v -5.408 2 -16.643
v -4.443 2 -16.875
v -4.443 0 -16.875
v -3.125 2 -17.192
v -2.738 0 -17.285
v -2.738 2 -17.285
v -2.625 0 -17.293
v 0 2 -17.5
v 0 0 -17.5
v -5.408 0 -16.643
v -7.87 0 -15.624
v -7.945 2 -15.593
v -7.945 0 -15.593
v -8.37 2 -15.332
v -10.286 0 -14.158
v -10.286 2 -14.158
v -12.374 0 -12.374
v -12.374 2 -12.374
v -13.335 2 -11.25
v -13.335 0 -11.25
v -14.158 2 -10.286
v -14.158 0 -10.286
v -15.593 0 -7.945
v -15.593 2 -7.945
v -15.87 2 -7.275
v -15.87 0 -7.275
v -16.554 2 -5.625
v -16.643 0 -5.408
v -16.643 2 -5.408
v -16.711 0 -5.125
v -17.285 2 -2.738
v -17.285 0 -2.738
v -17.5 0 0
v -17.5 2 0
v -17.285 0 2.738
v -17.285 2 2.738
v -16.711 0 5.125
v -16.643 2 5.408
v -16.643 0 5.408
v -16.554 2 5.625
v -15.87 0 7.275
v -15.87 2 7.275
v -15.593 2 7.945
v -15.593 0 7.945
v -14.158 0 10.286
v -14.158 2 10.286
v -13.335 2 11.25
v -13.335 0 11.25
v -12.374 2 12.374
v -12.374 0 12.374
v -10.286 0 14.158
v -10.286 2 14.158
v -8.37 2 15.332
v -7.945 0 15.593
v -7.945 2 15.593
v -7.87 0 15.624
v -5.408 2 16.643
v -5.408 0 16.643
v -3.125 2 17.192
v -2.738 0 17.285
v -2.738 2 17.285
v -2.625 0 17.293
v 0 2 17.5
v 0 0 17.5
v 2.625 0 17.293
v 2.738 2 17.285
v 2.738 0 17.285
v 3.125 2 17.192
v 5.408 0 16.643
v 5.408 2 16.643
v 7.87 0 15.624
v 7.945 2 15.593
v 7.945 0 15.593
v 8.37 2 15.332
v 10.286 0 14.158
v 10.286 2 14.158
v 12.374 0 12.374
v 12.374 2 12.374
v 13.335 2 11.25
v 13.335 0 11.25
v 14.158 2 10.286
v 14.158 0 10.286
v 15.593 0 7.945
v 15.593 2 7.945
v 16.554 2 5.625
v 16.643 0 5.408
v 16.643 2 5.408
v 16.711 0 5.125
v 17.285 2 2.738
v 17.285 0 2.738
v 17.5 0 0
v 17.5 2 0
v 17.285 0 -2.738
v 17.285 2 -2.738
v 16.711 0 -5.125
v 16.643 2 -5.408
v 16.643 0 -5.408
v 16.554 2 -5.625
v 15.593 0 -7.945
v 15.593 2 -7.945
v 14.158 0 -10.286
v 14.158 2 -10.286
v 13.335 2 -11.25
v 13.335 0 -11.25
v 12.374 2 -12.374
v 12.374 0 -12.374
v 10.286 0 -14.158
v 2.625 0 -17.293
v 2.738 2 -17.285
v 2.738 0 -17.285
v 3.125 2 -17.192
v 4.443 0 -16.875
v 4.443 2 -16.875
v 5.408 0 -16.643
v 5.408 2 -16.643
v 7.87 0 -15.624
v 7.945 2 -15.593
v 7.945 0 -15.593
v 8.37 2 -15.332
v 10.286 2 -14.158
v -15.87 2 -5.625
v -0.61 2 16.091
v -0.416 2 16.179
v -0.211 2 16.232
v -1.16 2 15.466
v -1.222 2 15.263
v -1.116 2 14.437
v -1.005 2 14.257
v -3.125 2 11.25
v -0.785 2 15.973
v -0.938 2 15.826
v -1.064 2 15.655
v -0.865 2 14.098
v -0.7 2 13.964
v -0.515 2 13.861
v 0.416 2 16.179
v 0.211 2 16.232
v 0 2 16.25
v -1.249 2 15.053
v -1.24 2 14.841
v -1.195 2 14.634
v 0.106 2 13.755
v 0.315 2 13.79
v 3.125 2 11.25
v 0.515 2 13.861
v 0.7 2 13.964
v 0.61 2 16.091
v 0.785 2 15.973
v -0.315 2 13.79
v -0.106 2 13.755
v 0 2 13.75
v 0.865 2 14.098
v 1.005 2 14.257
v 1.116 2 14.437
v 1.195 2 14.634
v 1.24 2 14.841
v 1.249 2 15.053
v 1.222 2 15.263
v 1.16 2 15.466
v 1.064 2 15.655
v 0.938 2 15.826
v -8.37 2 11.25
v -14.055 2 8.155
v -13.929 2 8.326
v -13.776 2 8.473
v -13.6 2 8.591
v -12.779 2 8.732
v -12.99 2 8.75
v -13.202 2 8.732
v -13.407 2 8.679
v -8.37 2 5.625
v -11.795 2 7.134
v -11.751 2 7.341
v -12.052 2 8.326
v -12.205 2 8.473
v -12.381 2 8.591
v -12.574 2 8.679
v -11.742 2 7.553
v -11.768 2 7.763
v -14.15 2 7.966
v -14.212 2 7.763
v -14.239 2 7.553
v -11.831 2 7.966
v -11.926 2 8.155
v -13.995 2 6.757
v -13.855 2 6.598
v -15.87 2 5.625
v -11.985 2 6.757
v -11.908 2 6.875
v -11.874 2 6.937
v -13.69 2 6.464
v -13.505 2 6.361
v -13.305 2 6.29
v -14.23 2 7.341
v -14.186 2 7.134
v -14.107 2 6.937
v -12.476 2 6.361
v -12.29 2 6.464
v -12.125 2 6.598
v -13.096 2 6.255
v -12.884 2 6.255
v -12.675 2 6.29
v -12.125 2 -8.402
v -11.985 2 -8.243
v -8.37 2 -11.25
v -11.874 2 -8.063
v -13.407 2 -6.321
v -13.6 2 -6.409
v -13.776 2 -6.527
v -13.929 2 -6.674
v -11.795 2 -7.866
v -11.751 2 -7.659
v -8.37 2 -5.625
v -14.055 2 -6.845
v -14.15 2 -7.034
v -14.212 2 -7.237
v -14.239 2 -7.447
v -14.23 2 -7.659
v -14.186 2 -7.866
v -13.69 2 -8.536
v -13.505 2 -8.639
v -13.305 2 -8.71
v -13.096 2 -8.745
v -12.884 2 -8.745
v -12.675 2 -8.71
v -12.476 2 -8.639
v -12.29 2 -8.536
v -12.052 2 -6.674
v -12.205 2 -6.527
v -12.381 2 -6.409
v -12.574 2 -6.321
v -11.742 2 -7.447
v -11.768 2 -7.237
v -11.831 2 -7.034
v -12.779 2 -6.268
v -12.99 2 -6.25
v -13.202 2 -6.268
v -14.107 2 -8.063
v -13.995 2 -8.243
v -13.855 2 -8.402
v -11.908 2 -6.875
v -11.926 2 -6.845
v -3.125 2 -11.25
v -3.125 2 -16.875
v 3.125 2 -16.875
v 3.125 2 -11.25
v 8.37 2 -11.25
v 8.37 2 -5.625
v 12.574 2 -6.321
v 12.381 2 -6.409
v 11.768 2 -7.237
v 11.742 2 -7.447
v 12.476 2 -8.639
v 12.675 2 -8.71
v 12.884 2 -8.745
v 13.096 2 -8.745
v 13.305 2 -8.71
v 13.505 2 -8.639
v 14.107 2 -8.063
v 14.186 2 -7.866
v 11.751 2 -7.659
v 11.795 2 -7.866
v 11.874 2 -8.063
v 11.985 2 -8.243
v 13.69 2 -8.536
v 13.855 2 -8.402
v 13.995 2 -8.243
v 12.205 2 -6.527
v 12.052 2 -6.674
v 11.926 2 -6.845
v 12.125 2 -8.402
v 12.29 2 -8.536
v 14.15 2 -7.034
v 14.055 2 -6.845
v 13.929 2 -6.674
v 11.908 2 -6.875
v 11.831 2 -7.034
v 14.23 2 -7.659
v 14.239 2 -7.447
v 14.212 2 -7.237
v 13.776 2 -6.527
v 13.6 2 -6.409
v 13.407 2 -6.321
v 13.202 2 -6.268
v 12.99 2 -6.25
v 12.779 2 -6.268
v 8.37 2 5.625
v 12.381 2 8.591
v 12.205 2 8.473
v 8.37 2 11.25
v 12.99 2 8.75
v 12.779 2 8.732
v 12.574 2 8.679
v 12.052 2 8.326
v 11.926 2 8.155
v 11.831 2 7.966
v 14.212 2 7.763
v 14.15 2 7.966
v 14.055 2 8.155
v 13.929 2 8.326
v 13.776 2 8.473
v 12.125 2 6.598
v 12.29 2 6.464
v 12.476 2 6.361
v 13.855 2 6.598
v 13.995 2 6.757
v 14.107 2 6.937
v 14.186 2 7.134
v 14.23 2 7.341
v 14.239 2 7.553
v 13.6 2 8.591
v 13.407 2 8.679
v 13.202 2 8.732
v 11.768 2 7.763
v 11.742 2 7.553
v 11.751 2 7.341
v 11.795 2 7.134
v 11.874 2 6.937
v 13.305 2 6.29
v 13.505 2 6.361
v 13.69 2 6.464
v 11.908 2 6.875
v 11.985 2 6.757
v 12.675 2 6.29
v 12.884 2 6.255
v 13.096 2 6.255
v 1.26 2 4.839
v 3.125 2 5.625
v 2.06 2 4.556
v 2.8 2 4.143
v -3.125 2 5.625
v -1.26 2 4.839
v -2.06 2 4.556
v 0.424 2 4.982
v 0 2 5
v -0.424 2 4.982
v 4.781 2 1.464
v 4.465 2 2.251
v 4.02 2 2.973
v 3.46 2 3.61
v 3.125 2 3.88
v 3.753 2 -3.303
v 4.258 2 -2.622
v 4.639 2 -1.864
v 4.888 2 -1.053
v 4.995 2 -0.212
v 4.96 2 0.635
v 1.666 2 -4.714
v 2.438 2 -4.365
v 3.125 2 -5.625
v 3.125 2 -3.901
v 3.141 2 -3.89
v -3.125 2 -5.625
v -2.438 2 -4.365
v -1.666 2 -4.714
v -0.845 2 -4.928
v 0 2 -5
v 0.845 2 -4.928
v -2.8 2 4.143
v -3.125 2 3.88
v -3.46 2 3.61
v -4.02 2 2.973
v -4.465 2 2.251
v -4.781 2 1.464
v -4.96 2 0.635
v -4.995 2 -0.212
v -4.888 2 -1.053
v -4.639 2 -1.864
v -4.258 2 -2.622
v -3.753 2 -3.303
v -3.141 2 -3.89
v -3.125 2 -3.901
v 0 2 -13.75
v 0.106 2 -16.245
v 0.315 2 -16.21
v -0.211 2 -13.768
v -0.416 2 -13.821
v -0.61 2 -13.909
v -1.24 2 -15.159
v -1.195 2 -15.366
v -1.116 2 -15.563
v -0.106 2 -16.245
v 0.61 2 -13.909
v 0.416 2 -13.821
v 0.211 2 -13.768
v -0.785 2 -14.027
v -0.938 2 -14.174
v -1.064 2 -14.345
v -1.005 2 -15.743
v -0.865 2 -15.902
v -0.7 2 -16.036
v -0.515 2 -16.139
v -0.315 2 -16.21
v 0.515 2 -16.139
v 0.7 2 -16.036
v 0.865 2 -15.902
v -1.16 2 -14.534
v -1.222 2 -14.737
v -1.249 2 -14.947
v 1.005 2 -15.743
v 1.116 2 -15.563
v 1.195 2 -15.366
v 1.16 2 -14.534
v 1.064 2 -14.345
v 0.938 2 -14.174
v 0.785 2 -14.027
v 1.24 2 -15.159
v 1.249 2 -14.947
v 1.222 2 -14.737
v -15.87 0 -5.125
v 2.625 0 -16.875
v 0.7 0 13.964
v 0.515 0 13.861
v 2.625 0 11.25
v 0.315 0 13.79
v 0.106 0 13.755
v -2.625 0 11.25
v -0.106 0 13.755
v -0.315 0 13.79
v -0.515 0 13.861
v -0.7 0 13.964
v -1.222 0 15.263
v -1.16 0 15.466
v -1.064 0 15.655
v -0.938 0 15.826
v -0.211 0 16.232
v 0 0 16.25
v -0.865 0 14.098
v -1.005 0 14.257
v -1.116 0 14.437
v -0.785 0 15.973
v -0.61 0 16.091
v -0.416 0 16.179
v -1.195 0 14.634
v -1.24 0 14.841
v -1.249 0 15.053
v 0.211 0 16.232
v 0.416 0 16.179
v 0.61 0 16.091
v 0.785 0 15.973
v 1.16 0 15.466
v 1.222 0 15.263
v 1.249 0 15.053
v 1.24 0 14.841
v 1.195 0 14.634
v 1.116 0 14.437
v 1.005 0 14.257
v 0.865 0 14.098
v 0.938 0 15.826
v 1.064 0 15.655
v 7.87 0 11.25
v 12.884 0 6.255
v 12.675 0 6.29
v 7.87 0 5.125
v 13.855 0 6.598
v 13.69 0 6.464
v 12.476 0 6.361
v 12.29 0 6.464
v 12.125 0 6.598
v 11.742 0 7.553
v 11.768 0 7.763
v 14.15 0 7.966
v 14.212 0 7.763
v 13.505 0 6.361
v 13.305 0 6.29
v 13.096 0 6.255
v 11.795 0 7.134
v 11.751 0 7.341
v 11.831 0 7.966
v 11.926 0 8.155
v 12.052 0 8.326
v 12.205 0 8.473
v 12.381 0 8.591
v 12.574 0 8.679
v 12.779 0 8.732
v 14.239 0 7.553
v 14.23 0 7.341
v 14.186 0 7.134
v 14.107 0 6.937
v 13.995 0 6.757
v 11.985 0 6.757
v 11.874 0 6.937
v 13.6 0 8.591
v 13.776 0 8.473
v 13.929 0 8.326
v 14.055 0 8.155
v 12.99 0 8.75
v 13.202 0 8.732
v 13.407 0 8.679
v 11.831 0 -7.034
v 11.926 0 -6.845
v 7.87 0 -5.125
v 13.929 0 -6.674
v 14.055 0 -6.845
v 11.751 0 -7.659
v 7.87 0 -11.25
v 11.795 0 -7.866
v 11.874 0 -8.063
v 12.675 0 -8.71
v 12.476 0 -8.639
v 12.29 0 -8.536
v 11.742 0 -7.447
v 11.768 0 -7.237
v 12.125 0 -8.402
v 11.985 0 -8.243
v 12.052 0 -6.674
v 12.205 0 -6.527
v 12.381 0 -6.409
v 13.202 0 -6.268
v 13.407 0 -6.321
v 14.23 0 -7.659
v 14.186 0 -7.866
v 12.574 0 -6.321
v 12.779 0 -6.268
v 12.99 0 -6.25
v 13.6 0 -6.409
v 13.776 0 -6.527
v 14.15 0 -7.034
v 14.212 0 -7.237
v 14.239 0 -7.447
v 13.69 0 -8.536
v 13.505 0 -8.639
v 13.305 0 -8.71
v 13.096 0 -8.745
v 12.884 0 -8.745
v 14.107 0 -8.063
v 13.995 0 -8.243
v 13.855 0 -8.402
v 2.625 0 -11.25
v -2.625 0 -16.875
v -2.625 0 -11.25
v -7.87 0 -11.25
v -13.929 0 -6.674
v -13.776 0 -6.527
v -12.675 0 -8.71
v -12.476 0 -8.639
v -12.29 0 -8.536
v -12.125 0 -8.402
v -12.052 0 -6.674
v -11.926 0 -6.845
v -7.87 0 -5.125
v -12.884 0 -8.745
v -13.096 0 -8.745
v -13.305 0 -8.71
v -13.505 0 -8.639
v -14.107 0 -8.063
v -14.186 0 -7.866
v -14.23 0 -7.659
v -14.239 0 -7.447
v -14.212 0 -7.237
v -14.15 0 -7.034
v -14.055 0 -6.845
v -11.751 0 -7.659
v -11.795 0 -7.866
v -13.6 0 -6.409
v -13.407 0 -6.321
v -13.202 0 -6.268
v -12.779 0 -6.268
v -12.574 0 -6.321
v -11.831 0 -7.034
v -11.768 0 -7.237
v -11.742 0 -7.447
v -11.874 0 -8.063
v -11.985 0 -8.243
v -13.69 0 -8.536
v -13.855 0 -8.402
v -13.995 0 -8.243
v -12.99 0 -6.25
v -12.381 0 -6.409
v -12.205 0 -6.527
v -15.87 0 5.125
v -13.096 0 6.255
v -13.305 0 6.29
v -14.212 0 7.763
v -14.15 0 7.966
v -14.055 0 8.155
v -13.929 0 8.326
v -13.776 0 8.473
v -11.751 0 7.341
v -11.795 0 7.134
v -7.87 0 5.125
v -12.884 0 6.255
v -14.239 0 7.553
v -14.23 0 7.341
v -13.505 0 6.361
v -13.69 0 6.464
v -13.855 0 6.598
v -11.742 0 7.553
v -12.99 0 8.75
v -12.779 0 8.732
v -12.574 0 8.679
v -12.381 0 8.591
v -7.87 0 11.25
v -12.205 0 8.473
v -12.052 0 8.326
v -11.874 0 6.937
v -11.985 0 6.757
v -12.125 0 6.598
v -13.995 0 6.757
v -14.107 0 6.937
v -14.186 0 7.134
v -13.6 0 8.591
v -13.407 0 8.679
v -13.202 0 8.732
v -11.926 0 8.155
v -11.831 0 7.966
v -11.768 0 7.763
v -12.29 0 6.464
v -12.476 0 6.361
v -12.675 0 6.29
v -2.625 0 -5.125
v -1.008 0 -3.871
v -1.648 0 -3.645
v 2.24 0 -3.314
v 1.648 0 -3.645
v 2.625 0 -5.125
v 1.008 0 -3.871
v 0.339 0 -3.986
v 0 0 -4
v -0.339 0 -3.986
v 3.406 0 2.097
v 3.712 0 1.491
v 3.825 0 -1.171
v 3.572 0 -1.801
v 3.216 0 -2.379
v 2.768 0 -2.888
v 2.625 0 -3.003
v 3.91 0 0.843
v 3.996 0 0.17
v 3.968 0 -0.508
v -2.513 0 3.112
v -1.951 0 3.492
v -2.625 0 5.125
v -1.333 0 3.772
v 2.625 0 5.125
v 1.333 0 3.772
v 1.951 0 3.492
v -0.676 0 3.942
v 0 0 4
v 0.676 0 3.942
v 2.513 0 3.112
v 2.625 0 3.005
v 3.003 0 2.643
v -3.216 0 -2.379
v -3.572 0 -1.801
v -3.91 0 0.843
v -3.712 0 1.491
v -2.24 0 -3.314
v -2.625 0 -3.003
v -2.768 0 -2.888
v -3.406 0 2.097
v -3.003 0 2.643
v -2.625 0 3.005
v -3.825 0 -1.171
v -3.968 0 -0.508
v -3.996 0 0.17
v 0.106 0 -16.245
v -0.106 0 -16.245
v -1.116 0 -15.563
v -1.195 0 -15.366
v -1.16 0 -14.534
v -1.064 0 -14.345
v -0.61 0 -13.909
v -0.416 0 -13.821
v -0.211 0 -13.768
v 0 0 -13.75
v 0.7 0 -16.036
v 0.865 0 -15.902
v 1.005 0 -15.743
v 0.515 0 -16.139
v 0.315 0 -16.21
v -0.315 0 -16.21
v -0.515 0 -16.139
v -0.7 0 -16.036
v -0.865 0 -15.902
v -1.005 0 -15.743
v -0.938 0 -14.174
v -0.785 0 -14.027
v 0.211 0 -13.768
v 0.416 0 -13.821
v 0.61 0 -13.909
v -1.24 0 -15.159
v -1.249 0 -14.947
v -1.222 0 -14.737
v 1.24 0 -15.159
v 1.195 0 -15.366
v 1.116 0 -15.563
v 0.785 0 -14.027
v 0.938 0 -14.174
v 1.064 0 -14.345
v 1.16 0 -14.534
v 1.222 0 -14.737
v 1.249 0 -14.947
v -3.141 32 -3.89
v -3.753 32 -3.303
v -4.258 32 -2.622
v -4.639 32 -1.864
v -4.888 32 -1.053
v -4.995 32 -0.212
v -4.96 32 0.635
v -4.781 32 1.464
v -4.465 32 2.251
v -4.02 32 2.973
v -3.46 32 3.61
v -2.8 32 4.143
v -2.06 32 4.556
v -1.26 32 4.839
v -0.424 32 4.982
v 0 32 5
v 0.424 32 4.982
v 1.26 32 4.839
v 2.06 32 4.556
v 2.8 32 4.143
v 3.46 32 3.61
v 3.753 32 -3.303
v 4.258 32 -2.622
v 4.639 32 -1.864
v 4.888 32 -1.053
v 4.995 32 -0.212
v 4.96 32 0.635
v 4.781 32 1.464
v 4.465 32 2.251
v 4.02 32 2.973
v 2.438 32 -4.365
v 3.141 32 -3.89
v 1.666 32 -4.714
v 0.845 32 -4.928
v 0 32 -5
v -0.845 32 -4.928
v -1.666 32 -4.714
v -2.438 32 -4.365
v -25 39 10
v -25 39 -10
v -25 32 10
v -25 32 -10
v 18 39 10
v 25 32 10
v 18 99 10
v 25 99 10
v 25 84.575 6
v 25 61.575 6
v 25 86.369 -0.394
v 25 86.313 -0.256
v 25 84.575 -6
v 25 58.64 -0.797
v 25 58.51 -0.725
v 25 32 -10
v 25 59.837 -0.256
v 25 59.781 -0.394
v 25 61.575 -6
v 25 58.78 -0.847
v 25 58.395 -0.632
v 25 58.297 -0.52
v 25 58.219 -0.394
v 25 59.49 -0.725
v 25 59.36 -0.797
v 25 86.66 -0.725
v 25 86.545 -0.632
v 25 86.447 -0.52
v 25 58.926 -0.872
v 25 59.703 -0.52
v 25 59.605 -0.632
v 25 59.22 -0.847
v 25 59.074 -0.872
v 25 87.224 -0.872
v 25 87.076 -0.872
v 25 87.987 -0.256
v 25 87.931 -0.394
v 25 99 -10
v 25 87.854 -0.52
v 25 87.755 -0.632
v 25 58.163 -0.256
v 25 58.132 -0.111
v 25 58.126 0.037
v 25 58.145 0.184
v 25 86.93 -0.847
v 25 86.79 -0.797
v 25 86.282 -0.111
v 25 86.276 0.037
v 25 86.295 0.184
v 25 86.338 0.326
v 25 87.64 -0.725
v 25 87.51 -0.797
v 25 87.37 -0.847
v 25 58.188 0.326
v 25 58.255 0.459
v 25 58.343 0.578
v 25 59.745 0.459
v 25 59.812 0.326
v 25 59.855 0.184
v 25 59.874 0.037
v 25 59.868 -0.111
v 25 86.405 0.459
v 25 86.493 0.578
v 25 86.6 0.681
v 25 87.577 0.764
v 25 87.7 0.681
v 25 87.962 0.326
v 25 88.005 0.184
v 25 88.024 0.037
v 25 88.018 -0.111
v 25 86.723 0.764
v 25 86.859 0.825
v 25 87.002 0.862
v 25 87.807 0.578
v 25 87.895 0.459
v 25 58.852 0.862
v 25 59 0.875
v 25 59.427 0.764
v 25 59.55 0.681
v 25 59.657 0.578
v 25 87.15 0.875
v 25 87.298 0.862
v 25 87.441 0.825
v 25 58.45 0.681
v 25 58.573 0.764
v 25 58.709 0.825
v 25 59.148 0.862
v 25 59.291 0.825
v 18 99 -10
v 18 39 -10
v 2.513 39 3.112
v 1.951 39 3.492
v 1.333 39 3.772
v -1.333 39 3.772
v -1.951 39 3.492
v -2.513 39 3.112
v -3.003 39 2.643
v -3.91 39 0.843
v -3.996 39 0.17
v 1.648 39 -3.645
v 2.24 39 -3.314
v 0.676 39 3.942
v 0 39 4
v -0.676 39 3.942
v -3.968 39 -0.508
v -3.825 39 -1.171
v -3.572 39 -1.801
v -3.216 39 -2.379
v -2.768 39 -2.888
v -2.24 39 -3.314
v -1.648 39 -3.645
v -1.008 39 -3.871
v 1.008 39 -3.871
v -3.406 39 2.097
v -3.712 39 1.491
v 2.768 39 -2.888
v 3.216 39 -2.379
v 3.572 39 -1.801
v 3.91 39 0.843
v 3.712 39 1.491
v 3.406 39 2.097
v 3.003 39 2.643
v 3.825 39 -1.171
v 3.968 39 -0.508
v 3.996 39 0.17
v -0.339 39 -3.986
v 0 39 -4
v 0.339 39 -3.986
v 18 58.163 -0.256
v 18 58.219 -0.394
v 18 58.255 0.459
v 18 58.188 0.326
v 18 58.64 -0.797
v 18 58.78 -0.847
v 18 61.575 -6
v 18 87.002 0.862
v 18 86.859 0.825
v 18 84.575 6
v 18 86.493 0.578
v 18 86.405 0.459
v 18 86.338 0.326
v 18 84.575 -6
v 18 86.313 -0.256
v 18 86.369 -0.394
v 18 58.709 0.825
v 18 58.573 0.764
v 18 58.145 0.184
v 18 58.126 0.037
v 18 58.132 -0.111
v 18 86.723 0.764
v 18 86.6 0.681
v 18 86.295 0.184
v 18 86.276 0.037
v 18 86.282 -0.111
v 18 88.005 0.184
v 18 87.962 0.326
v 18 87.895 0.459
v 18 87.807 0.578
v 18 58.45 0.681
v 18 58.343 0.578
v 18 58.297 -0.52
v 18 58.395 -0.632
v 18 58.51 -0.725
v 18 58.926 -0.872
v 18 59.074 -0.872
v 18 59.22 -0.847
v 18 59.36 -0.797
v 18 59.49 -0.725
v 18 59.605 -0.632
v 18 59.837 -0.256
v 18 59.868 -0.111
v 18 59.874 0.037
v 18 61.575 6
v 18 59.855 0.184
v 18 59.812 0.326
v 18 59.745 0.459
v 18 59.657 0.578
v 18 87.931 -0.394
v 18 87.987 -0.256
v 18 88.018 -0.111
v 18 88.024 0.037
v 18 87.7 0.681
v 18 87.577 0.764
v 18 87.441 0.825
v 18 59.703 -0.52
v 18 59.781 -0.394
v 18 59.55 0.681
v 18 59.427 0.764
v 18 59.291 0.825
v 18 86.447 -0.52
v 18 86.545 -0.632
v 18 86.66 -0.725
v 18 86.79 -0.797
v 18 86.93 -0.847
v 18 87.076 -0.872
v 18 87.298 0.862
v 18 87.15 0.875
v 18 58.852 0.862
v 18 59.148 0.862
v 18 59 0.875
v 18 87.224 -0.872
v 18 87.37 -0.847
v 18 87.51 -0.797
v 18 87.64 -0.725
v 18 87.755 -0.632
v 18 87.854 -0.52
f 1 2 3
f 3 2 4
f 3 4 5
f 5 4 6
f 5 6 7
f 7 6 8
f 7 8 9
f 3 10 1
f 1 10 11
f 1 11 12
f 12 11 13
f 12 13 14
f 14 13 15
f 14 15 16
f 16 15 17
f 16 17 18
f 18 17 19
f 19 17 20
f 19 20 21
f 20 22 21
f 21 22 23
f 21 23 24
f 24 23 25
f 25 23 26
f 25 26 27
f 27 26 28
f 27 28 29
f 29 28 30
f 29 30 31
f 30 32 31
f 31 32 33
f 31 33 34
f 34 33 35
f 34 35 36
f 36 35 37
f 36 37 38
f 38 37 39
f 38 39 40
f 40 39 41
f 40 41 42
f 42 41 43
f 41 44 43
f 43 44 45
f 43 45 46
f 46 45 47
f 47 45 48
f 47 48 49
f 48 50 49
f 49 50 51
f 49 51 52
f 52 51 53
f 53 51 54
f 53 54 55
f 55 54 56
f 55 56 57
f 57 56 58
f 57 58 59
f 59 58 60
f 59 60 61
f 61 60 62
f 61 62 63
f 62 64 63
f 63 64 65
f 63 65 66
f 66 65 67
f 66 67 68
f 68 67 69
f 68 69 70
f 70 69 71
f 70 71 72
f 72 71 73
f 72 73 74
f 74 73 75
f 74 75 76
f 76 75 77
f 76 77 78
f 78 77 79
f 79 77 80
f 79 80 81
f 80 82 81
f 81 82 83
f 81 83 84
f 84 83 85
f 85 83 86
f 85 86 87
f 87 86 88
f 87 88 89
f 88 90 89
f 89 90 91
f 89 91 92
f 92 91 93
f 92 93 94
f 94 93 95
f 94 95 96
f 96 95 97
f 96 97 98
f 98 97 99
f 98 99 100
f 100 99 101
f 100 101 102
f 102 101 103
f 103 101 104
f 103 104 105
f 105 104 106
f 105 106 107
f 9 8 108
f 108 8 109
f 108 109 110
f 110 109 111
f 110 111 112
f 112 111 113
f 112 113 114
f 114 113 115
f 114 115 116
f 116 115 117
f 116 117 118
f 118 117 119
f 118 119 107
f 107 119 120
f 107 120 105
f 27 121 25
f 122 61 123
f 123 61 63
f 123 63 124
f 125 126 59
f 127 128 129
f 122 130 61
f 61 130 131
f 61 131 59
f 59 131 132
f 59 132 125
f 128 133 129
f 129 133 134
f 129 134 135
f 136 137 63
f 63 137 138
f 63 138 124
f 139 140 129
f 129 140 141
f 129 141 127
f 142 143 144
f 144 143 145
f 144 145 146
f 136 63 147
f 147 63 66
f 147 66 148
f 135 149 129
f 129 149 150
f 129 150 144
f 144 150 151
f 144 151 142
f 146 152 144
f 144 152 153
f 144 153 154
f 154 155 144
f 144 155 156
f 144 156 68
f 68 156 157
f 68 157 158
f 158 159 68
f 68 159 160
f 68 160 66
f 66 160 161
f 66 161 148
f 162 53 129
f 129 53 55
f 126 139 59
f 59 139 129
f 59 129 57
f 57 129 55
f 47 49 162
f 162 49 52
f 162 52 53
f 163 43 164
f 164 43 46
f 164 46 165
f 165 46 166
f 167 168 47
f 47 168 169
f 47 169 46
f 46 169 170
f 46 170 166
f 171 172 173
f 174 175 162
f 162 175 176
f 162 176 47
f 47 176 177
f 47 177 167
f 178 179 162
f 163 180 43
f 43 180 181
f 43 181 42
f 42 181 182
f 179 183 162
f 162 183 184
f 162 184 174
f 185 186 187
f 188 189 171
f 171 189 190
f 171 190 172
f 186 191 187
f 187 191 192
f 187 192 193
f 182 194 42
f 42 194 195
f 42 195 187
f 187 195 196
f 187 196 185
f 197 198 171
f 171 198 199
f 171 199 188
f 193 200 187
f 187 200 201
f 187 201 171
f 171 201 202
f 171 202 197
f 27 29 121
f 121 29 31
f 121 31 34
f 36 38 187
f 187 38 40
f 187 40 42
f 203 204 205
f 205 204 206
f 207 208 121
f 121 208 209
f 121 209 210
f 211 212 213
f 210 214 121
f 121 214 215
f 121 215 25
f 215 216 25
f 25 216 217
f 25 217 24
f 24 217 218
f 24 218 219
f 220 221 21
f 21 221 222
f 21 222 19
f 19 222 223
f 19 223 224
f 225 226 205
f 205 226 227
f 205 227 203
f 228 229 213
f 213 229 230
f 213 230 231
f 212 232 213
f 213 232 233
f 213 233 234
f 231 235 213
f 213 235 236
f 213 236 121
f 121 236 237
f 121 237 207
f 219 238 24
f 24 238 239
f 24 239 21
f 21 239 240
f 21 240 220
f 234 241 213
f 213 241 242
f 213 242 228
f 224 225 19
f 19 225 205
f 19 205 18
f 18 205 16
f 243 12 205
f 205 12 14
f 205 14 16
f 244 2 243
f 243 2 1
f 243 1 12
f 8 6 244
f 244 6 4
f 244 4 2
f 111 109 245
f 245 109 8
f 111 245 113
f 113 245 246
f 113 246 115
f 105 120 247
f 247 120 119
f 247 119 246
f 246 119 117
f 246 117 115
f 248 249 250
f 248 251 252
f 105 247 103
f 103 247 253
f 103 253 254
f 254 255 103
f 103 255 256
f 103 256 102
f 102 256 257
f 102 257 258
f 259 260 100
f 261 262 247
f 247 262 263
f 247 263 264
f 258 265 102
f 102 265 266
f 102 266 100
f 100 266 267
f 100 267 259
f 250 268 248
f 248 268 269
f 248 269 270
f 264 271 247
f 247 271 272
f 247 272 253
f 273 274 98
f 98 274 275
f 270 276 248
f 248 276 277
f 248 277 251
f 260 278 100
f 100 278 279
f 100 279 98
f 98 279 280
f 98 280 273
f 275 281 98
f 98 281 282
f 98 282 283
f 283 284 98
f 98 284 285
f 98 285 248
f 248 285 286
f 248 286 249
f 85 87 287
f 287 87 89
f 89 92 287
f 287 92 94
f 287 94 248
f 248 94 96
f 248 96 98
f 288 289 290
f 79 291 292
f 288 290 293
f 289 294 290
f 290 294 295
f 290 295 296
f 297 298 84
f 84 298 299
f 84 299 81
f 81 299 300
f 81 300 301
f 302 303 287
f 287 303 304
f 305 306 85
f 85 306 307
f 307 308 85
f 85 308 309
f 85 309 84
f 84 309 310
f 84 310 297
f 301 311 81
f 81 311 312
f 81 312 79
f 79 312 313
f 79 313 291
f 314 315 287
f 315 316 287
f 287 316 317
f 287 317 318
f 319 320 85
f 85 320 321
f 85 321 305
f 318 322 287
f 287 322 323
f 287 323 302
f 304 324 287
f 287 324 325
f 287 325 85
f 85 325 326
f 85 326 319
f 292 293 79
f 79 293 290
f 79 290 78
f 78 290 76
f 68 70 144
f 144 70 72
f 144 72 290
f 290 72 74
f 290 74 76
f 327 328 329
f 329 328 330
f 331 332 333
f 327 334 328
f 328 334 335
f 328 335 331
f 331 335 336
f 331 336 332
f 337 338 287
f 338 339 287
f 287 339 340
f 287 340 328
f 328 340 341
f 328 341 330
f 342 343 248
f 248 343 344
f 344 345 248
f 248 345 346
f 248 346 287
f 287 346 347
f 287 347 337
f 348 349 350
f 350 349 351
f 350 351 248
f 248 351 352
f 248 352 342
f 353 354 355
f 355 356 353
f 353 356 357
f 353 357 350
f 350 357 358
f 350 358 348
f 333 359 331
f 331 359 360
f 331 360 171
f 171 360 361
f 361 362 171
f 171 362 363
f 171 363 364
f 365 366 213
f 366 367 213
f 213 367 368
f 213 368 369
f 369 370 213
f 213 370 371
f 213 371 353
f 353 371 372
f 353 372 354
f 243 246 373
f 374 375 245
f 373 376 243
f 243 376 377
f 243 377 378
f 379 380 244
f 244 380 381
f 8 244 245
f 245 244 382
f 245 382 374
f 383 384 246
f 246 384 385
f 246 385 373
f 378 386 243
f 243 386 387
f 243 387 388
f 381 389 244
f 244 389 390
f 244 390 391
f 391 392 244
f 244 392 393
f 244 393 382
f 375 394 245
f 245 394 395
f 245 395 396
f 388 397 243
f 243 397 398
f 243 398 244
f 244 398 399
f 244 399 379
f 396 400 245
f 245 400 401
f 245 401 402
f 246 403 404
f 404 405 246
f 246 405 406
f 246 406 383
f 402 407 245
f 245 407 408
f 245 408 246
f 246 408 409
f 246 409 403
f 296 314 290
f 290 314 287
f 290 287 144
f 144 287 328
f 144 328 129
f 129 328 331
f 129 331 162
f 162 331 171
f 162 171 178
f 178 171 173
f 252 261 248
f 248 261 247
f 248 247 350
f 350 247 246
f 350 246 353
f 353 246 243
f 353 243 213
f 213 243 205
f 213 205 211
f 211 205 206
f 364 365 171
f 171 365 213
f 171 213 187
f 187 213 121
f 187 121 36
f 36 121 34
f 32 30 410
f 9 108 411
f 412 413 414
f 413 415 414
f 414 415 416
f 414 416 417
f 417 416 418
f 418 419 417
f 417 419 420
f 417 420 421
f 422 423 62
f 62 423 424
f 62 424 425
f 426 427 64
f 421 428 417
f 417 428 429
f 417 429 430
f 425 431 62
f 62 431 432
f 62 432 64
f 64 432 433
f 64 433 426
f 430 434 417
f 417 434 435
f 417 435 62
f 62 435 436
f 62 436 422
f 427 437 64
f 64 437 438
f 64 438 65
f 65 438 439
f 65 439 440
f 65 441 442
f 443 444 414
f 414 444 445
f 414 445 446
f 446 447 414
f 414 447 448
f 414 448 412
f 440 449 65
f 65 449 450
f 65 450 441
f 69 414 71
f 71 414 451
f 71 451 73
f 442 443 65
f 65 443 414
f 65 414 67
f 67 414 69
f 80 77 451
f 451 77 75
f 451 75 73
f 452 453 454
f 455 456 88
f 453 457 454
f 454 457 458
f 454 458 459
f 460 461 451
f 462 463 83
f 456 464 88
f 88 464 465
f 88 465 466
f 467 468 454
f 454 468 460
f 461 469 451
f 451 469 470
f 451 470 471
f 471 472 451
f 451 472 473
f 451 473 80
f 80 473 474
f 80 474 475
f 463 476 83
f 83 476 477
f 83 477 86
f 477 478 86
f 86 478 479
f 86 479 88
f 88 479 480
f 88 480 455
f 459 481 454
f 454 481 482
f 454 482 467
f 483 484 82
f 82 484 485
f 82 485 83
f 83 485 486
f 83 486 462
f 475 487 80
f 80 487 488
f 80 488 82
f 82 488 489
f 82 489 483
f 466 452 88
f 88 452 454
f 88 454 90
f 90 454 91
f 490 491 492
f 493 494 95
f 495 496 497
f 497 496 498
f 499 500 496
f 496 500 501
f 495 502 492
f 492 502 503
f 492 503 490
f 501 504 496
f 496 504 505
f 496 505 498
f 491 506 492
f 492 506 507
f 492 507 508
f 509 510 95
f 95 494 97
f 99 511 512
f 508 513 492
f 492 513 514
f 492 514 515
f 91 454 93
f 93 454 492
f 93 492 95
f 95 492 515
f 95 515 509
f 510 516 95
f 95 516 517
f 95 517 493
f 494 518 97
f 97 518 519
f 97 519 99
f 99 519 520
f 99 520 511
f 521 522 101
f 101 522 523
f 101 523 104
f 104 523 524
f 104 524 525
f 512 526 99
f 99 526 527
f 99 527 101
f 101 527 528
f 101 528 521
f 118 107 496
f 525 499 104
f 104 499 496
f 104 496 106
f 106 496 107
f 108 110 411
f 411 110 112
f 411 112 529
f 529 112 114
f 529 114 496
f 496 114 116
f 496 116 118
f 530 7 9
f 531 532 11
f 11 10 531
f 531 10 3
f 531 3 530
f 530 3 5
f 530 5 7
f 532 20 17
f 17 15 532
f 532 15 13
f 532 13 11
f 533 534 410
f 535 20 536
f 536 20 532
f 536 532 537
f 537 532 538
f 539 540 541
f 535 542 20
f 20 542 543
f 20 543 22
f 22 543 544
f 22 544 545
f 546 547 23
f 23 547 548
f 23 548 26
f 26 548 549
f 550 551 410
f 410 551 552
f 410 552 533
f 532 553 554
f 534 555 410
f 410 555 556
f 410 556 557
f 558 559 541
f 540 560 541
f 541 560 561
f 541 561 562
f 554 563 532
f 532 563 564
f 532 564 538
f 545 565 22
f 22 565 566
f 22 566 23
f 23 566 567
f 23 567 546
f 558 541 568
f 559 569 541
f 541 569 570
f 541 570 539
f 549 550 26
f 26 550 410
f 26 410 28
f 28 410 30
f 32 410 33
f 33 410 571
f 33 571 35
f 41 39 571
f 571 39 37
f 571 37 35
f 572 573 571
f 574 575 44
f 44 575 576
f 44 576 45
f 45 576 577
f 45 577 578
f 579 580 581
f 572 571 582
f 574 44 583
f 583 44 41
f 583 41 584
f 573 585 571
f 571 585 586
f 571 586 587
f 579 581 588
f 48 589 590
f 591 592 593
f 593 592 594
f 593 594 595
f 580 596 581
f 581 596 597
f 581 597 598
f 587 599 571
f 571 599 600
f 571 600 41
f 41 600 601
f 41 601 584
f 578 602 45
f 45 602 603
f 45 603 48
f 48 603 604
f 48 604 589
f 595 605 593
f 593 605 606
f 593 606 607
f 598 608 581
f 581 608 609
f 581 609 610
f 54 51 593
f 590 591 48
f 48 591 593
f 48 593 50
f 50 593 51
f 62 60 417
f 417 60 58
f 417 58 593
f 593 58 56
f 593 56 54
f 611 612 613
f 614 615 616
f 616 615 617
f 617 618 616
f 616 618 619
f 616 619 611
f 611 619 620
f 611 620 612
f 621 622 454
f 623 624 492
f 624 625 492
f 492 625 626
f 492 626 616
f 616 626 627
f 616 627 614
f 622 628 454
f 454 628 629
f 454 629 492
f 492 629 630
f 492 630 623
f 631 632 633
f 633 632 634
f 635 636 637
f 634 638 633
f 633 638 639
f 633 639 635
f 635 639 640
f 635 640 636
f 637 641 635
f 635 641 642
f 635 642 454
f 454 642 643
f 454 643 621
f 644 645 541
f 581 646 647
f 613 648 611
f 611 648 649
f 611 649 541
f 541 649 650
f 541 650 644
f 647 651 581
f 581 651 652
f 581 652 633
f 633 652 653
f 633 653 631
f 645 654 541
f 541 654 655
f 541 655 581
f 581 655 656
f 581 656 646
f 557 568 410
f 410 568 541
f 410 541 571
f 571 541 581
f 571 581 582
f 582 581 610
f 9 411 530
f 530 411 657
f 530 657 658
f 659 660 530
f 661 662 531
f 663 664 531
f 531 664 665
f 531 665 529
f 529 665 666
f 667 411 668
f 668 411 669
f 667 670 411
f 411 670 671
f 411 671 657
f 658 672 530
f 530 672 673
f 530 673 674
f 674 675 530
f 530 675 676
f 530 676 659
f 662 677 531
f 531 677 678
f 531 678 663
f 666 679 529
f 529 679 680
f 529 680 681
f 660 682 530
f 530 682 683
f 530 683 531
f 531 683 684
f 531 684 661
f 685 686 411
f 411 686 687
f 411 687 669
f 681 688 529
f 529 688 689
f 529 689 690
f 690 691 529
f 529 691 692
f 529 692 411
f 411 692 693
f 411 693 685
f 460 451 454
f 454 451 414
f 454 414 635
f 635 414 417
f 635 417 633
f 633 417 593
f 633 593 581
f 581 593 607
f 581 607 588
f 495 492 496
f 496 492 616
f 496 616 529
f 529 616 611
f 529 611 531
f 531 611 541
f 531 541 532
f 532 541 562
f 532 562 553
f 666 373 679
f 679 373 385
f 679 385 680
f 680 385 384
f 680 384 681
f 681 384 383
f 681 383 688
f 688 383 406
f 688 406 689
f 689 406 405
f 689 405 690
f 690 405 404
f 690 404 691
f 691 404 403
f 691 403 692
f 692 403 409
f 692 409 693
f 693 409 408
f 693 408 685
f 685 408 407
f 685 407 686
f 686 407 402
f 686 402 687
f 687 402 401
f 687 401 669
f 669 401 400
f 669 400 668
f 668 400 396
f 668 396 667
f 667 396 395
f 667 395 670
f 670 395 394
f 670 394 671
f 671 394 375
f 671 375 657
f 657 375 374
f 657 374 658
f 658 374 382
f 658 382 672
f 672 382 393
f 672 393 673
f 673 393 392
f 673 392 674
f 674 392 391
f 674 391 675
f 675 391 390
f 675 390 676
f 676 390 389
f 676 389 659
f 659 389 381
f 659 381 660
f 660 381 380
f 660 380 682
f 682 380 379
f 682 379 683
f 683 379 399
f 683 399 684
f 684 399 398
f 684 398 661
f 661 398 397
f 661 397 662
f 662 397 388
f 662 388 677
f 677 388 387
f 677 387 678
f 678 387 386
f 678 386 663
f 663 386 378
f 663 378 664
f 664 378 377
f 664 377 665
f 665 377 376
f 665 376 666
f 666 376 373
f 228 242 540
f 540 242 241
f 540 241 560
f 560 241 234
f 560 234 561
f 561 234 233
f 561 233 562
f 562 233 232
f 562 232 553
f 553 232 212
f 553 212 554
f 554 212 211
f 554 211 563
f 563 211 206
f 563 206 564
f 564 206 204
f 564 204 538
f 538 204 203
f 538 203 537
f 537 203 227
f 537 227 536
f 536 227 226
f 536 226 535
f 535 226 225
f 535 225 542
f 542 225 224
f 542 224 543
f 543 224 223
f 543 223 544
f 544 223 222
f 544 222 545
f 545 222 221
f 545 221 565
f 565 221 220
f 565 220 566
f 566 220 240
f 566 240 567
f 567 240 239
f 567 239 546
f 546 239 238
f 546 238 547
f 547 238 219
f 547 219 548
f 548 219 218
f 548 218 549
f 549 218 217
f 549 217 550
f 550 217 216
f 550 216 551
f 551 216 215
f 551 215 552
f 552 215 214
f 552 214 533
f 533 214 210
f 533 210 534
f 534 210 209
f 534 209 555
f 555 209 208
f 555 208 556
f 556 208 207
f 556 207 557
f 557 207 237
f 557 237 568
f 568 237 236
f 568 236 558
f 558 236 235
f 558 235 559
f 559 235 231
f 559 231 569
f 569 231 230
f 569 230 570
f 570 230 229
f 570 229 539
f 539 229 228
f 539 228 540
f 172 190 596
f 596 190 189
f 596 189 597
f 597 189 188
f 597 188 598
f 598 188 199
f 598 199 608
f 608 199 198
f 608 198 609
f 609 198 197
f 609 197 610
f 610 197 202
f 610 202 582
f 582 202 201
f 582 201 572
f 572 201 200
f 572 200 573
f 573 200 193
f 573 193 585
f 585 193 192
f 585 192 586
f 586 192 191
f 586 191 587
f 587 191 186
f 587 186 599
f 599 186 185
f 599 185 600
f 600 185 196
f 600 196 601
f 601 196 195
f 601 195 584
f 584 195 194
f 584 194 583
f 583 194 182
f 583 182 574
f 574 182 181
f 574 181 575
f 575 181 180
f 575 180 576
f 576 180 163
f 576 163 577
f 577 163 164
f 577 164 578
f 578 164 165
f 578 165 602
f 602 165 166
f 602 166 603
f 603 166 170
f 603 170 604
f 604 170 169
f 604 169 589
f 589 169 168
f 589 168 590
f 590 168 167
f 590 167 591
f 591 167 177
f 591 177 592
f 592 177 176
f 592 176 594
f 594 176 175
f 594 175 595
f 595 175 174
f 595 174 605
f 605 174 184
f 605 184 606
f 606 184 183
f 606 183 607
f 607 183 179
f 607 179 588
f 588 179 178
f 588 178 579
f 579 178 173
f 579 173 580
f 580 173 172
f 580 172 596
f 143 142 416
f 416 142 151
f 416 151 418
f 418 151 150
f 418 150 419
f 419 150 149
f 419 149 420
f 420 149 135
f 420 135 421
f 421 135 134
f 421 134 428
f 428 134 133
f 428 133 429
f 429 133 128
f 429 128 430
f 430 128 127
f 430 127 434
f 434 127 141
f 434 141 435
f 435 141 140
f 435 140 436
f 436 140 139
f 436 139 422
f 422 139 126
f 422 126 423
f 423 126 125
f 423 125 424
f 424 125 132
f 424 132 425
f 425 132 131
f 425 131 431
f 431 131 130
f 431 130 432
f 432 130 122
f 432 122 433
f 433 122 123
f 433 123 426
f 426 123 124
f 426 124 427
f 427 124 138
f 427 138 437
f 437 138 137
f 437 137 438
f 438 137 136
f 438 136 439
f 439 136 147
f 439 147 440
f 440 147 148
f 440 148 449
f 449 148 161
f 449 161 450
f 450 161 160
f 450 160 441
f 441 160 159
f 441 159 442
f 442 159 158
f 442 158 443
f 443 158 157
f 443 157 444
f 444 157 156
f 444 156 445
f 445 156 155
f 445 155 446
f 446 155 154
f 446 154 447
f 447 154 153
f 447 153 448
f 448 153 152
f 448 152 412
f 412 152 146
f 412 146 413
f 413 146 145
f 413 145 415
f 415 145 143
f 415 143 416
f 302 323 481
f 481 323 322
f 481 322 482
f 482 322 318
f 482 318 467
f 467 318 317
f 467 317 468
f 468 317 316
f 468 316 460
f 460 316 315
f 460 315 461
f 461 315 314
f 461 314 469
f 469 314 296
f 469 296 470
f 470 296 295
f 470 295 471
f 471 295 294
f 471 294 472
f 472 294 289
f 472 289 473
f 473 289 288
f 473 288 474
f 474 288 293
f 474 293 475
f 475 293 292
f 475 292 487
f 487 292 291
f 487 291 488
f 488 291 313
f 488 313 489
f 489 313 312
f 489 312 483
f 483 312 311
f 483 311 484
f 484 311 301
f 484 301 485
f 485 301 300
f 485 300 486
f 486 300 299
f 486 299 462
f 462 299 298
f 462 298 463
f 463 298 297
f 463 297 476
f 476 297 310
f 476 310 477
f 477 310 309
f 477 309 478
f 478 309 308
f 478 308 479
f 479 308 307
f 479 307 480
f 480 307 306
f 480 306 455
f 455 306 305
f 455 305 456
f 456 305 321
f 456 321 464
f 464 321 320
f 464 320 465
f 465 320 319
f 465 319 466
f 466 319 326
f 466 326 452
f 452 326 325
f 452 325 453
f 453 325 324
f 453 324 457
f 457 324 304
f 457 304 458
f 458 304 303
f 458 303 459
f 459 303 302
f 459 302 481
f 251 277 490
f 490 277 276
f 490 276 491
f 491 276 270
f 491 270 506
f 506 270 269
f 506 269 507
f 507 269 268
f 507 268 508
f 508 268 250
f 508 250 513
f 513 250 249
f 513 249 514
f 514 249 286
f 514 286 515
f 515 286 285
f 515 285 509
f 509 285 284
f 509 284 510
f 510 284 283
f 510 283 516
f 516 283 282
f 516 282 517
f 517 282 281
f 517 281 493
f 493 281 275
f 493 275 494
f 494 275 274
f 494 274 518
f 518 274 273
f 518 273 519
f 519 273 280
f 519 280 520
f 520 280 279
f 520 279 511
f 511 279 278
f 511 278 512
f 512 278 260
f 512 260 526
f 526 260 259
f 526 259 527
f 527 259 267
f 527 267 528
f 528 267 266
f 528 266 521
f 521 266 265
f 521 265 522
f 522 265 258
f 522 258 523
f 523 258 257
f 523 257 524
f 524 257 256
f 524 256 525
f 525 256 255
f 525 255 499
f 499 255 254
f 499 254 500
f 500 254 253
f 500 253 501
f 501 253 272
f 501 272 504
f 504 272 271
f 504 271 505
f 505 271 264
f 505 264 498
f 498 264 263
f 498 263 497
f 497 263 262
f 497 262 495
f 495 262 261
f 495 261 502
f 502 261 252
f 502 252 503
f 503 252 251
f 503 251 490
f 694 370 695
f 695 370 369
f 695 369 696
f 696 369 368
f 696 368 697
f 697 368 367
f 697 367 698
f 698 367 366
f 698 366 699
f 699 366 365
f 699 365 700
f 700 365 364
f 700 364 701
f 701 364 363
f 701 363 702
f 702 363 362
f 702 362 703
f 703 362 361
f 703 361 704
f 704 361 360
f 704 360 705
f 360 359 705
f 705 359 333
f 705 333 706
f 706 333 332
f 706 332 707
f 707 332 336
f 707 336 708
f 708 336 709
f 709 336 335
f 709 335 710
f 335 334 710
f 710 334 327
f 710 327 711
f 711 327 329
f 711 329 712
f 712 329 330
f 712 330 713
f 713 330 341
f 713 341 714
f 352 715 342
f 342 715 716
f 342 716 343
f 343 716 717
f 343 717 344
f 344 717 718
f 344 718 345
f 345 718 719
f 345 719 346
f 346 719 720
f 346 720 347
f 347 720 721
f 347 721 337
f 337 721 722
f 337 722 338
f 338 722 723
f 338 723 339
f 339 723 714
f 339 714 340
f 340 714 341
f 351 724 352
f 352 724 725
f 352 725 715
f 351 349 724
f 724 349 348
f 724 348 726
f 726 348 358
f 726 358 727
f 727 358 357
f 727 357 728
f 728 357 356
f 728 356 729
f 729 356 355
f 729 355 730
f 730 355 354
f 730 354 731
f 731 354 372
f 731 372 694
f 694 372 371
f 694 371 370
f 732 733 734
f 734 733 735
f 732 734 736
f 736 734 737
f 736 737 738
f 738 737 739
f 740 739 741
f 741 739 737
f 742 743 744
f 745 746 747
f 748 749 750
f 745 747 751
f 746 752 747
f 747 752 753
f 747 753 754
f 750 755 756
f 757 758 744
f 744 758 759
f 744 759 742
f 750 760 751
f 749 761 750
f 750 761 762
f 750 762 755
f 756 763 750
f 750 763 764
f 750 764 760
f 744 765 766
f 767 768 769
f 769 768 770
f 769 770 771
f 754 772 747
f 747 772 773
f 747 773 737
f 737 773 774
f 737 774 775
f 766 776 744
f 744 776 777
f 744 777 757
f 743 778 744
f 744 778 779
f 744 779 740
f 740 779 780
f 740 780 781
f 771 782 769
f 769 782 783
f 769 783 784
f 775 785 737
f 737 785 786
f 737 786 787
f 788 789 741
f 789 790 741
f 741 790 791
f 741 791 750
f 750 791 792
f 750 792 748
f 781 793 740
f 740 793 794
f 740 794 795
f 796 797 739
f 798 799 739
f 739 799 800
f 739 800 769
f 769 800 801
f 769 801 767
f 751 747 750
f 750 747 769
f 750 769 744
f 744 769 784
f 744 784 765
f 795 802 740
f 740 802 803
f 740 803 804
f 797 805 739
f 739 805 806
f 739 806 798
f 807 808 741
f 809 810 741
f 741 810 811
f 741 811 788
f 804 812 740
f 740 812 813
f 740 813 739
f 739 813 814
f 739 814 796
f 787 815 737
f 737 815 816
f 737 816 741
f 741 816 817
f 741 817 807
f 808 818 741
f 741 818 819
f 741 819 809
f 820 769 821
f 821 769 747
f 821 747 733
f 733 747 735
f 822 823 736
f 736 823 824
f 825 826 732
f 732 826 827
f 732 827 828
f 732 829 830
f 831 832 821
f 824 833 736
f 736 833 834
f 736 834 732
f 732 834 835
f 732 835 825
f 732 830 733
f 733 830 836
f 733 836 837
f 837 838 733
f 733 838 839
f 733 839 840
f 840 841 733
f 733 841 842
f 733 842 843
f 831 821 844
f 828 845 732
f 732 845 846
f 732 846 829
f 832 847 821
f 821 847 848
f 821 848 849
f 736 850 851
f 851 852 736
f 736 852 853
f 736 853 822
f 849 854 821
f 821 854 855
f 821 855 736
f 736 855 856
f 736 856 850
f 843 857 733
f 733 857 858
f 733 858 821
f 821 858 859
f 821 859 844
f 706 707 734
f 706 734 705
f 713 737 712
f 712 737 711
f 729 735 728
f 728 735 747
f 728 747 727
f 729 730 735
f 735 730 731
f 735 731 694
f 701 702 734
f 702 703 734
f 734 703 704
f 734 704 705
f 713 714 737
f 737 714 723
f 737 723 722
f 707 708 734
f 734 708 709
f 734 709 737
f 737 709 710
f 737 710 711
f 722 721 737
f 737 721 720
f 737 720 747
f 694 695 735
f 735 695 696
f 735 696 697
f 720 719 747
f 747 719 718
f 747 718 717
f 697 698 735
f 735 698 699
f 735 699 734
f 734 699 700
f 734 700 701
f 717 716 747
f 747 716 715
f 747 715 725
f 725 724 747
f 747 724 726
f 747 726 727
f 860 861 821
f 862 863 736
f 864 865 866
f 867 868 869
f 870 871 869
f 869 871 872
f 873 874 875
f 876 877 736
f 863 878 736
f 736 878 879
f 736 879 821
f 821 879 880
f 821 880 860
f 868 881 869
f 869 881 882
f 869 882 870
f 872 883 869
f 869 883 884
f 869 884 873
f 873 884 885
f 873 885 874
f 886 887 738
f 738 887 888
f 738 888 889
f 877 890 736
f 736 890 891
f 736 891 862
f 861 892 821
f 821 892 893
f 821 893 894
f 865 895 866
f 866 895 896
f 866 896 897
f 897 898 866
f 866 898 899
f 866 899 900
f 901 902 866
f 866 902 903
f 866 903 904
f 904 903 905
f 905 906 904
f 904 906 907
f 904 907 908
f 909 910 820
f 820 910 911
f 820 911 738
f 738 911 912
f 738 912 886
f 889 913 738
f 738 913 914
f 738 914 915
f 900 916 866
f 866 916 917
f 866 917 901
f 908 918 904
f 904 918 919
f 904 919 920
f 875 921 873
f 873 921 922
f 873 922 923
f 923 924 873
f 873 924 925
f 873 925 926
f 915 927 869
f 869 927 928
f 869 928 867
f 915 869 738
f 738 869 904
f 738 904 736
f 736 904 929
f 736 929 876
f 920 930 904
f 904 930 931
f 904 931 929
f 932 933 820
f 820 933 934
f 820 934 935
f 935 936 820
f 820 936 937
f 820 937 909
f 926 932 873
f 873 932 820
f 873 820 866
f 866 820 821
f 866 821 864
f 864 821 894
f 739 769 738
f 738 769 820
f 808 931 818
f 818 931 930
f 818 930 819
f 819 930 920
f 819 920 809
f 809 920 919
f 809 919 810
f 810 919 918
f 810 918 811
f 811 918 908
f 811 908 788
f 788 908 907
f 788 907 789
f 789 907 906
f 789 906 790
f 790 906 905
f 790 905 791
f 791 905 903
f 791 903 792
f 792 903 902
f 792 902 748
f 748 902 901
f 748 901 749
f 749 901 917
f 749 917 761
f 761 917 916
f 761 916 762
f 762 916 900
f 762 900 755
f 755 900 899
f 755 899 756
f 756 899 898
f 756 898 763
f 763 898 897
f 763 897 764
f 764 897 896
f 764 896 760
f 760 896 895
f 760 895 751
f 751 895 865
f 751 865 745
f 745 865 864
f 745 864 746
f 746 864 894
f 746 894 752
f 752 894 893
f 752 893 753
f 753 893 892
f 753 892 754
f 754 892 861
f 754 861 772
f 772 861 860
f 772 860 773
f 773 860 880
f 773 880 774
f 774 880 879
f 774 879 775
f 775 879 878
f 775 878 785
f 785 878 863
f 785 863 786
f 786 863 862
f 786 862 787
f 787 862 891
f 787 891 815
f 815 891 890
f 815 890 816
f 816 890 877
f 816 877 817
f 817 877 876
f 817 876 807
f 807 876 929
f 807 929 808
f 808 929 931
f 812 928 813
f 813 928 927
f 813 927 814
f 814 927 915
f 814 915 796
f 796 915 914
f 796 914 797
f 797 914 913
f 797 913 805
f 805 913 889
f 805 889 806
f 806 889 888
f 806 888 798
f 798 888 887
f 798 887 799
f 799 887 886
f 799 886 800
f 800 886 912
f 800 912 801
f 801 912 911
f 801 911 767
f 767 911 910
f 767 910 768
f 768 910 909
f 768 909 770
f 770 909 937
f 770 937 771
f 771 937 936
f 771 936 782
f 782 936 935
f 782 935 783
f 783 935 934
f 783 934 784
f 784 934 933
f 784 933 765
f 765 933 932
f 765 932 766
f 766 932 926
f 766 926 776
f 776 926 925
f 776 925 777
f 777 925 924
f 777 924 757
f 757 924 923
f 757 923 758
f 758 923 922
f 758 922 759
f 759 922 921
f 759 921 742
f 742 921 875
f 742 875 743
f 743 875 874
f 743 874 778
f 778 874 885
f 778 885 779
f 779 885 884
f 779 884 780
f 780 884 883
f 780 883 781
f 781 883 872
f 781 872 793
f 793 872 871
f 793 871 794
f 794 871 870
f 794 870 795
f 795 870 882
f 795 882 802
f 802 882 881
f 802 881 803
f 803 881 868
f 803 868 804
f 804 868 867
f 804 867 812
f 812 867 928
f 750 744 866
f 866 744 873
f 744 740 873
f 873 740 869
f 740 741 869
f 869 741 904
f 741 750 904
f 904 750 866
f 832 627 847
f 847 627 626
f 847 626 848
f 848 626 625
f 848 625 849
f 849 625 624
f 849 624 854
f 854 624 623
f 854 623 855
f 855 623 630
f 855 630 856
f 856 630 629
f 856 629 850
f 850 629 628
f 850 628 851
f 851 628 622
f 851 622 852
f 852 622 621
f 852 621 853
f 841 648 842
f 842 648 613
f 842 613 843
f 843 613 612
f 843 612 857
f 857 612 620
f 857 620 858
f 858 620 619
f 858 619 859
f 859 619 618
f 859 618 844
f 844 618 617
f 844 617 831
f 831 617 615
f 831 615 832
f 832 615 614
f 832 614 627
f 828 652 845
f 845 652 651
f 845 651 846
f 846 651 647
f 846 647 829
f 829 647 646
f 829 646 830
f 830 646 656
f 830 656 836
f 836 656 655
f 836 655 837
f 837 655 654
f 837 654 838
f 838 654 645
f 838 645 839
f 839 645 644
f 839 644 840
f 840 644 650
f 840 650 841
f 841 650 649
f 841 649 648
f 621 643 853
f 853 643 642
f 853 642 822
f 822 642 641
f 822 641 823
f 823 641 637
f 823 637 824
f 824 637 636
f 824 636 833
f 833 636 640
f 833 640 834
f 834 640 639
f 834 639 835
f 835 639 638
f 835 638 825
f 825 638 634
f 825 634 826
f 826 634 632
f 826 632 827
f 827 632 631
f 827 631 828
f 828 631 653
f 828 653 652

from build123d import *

# Parameters (mm, degrees)
SKETCH1_R               = 17.5
BOSS_EXTRUDE1_DEPTH     = 2
SKETCH2_R               = 1.25
CUT_EXTRUDE1_DEPTH      = 5
CIRPATTERN1_COUNT       = 6
SKETCH3_R               = 5
BOSS_EXTRUDE2_DEPTH     = 30
SKETCH4_W               = 50
SKETCH4_H               = 20
BOSS_EXTRUDE3_DEPTH     = 7
SKETCH5_W               = 7
SKETCH5_H               = 20
BOSS_EXTRUDE4_DEPTH     = 60
SKETCH6_R               = 0.875
CUT_EXTRUDE2_DEPTH      = 7
SKETCH7_W               = 12
SKETCH7_H               = 23
CUT_EXTRUDE3_DEPTH      = 7
SKETCH8_R               = 4
CUT_EXTRUDE4_DEPTH      = 32
CUT_EXTRUDE4_DEPTH_BACK = 7


with BuildPart() as part:
    # Sketch1 → Boss-Extrude1 (new body)
    with BuildSketch(Plane(origin=(0, 0, 0), x_dir=(1, 0, 0), z_dir=(0, 1, 0))):
        Circle(SKETCH1_R)
    extrude(amount=BOSS_EXTRUDE1_DEPTH)

    # Sketch2 → Cut-Extrude1 (cut)
    with BuildSketch(Plane(origin=(0, 2, 0), x_dir=(1, 0, 0), z_dir=(0, 1, 0))):
        with Locations((0, 15)):
            Circle(SKETCH2_R)
    cut_extrude1 = extrude(amount=-CUT_EXTRUDE1_DEPTH, mode=Mode.SUBTRACT)

    # CirPattern1: Cut-Extrude1 ×6 about axis
    cirpattern1_axis = Axis((0, 0, 0), (0, 1, 0))
    for i in range(1, CIRPATTERN1_COUNT):
        add(cut_extrude1.rotate(cirpattern1_axis, i * 360 / CIRPATTERN1_COUNT), mode=Mode.SUBTRACT)

    # Sketch3 → Boss-Extrude2 (add)
    with BuildSketch(Plane(origin=(0, 2, 0), x_dir=(1, 0, 0), z_dir=(0, 1, 0))):
        Circle(SKETCH3_R)
    extrude(amount=BOSS_EXTRUDE2_DEPTH)

    # Sketch4 → Boss-Extrude3 (add)
    with BuildSketch(Plane(origin=(0, 32, 0), x_dir=(1, 0, 0), z_dir=(0, 1, 0))):
        Rectangle(SKETCH4_W, SKETCH4_H)
    extrude(amount=BOSS_EXTRUDE3_DEPTH)

    # Sketch5 → Boss-Extrude4 (add)
    with BuildSketch(Plane(origin=(0, 39, 0), x_dir=(1, 0, 0), z_dir=(0, 1, 0))):
        with Locations((21.5, 0)):
            Rectangle(SKETCH5_W, SKETCH5_H)
    extrude(amount=BOSS_EXTRUDE4_DEPTH)

    # Sketch6 → Cut-Extrude2 (cut)
    with BuildSketch(Plane.ZY.offset(-18)):
        with Locations((0, 87.15)):
            Circle(SKETCH6_R)
        with Locations((0, 59)):
            Circle(SKETCH6_R)
    extrude(amount=-CUT_EXTRUDE2_DEPTH, mode=Mode.SUBTRACT)

    # Sketch7 → Cut-Extrude3 (cut)
    with BuildSketch(Plane.ZY.offset(-18)):
        with Locations((0, 73.075)):
            Rectangle(SKETCH7_W, SKETCH7_H)
    extrude(amount=-CUT_EXTRUDE3_DEPTH, mode=Mode.SUBTRACT)

    # Sketch8 → Cut-Extrude4 (cut, two sides)
    with BuildSketch(Plane(origin=(0, 32, 0), x_dir=(-1, 0, 0), z_dir=(0, -1, 0))) as cut_extrude4_sk:
        Circle(SKETCH8_R)
    extrude(amount=CUT_EXTRUDE4_DEPTH, mode=Mode.SUBTRACT)
    extrude(cut_extrude4_sk.sketch, amount=-CUT_EXTRUDE4_DEPTH_BACK, mode=Mode.SUBTRACT)


solid = part.part
